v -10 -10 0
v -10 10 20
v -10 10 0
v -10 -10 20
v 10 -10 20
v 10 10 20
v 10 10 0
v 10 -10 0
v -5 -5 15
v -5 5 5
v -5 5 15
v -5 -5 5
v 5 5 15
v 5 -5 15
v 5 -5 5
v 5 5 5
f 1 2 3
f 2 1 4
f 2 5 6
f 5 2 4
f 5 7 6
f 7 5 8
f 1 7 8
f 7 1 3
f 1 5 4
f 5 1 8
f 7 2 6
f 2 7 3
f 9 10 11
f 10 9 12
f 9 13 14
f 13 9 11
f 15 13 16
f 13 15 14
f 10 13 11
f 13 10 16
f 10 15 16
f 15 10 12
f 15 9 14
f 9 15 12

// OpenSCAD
difference(){

translate([0, 0, 10])
cube([20, 20, 20], center=true);

translate([0, 0, 10])
cube([10, 10, 10], center=true);

}
